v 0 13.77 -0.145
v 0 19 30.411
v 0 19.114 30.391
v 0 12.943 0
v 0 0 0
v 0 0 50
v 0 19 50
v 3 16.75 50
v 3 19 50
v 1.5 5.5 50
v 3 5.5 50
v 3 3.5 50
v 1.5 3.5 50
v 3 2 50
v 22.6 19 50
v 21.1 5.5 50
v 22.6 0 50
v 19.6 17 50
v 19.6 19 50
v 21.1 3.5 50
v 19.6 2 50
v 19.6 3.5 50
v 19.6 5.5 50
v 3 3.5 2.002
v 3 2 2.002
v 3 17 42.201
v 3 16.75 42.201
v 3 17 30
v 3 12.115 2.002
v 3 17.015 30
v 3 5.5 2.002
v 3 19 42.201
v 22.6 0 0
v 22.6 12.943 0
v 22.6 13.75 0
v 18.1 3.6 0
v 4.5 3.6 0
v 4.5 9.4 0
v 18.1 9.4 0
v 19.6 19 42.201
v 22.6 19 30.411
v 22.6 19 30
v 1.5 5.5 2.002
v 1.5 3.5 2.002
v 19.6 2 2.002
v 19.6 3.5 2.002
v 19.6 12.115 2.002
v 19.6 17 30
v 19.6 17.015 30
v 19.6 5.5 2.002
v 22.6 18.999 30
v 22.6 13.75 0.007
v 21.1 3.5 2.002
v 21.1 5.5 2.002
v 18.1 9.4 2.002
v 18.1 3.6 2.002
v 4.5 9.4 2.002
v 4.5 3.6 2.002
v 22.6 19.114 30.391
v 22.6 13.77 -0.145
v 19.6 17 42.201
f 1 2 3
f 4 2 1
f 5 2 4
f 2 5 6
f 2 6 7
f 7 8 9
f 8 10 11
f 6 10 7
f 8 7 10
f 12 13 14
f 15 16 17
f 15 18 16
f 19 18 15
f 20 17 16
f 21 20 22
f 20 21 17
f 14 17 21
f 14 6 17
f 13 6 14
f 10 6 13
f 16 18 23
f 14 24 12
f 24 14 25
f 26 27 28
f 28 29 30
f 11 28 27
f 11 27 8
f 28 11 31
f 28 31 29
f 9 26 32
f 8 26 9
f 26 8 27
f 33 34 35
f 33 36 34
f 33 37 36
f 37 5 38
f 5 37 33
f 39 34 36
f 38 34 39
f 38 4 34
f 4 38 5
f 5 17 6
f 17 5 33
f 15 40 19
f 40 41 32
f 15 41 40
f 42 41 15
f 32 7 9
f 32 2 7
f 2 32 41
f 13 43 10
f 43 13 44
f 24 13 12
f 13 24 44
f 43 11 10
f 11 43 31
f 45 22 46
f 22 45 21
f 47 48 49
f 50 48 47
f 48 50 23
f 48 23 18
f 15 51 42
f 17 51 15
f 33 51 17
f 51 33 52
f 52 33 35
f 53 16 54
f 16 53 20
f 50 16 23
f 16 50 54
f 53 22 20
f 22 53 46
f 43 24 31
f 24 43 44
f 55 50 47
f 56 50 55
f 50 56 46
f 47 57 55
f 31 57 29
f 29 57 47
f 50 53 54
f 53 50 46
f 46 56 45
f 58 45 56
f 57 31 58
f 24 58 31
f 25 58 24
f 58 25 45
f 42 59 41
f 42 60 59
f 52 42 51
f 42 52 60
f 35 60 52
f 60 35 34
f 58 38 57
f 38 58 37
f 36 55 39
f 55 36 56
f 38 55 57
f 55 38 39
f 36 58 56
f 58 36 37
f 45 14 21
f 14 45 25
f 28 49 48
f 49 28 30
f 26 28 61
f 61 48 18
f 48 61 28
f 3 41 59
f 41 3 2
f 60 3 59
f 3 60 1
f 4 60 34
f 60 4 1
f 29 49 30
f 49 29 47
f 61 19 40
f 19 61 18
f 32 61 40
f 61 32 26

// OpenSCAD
// Air-Compliance Programming PCB Case
//
// The PCBA has a BMI Connector end and a USB connector end.
// Dimensions are sloppy to support FDM printing.
//

$fa = 1;                // Quality: minimum angle for a fragment.
$fs = 0.4;              // Quality: minimum size of a fragment.

// Object major dimensions.
wall = 3;               // general wall thickness
objz1 = 50;             // total
objz2 = 20;             // BMI to USB transition point

InteriorX = 16.6;
CaseX = 2*wall+InteriorX;
CaseY = 13.75;          // at the BMI end

UsbSlotSizeX = 13.6;
UsbSlotSizeY = 5.8;
UsbSlotPosY = 3.6;      // Position in Y.  X is centered.

BmiSlotZ = 7.8;

// PCB Slot dimensions.
slotwidth  = 2;         // The PCB measures 1.5 mm.
slotdepth  = 1.5;       // How deep into the wall the slot goes.
PcbSlotSizeY = 3.5;     // Position in Y.

// A small offset to guarantee overlap.
smidge = 0.001;

module side()
{
    zz = objz1-objz2;
    
    TriPoints = [
    [0,0,0],            // point 0
    [0,0,zz],           // point 1
    [wall,0,zz],        // point 2
    [wall,0,0],         // point 3
    [wall,5.25,zz],     // point 4
    [0,5.25,zz]         // point 5
];

TriFaces = [
    [0,1,2,3],
    [1,5,4,2],
    [0,3,4,5],
    [3,2,4],
    [1,0,5]
];
    cube([wall,CaseY,objz1],center=false);
    translate([0,0,(objz1-objz2)])
        cube([wall,19,objz2],center=false);

    translate([0,CaseY-smidge,objz1-objz2-zz+smidge])
        polyhedron(TriPoints, TriFaces);
};

module side1()
{
    difference() 
    {
        side();
        translate([wall-slotdepth,PcbSlotSizeY,-smidge]) cube([wall,slotwidth,objz1+2*smidge]);
    }
}

module side2()
{
    difference() 
    {
        side();
        translate([-wall+slotdepth,PcbSlotSizeY,-smidge]) 
            cube([wall,slotwidth,objz1+2*smidge]);
    }
}

// Create the USB Face with hard-coded 2 mm wall.
module usbFace()
{
    difference()
    {
        cube([CaseX, CaseY, 2+2*smidge]);
        translate([ (CaseX/2)-(UsbSlotSizeX/2),
                    UsbSlotPosY, -smidge]) 
            cube([UsbSlotSizeX,UsbSlotSizeY,2.2]);
    } 
}

module MajorAssembly()
{
    side1();
    translate([wall+InteriorX,0,0]) side2();
    cube([CaseX, 2, objz1]);
    translate([0,19-2,objz1-objz2]) cube([CaseX, 2, objz2]);
    usbFace();

    // Calculate the angle and translate until it fits.
    angle = atan(5.25/(objz1-objz2));
    translate([0,11.8,0.2]) rotate([-angle,0,0]) 
        cube([CaseX,2,objz1-objz2+1]);
}



difference()
{
    MajorAssembly();
    
    // Cut out the BMI Connector rib slot. 
    translate([wall,wall+CaseY,objz1-BmiSlotZ+smidge]) 
        cube([InteriorX,2*wall,BmiSlotZ]);
}
